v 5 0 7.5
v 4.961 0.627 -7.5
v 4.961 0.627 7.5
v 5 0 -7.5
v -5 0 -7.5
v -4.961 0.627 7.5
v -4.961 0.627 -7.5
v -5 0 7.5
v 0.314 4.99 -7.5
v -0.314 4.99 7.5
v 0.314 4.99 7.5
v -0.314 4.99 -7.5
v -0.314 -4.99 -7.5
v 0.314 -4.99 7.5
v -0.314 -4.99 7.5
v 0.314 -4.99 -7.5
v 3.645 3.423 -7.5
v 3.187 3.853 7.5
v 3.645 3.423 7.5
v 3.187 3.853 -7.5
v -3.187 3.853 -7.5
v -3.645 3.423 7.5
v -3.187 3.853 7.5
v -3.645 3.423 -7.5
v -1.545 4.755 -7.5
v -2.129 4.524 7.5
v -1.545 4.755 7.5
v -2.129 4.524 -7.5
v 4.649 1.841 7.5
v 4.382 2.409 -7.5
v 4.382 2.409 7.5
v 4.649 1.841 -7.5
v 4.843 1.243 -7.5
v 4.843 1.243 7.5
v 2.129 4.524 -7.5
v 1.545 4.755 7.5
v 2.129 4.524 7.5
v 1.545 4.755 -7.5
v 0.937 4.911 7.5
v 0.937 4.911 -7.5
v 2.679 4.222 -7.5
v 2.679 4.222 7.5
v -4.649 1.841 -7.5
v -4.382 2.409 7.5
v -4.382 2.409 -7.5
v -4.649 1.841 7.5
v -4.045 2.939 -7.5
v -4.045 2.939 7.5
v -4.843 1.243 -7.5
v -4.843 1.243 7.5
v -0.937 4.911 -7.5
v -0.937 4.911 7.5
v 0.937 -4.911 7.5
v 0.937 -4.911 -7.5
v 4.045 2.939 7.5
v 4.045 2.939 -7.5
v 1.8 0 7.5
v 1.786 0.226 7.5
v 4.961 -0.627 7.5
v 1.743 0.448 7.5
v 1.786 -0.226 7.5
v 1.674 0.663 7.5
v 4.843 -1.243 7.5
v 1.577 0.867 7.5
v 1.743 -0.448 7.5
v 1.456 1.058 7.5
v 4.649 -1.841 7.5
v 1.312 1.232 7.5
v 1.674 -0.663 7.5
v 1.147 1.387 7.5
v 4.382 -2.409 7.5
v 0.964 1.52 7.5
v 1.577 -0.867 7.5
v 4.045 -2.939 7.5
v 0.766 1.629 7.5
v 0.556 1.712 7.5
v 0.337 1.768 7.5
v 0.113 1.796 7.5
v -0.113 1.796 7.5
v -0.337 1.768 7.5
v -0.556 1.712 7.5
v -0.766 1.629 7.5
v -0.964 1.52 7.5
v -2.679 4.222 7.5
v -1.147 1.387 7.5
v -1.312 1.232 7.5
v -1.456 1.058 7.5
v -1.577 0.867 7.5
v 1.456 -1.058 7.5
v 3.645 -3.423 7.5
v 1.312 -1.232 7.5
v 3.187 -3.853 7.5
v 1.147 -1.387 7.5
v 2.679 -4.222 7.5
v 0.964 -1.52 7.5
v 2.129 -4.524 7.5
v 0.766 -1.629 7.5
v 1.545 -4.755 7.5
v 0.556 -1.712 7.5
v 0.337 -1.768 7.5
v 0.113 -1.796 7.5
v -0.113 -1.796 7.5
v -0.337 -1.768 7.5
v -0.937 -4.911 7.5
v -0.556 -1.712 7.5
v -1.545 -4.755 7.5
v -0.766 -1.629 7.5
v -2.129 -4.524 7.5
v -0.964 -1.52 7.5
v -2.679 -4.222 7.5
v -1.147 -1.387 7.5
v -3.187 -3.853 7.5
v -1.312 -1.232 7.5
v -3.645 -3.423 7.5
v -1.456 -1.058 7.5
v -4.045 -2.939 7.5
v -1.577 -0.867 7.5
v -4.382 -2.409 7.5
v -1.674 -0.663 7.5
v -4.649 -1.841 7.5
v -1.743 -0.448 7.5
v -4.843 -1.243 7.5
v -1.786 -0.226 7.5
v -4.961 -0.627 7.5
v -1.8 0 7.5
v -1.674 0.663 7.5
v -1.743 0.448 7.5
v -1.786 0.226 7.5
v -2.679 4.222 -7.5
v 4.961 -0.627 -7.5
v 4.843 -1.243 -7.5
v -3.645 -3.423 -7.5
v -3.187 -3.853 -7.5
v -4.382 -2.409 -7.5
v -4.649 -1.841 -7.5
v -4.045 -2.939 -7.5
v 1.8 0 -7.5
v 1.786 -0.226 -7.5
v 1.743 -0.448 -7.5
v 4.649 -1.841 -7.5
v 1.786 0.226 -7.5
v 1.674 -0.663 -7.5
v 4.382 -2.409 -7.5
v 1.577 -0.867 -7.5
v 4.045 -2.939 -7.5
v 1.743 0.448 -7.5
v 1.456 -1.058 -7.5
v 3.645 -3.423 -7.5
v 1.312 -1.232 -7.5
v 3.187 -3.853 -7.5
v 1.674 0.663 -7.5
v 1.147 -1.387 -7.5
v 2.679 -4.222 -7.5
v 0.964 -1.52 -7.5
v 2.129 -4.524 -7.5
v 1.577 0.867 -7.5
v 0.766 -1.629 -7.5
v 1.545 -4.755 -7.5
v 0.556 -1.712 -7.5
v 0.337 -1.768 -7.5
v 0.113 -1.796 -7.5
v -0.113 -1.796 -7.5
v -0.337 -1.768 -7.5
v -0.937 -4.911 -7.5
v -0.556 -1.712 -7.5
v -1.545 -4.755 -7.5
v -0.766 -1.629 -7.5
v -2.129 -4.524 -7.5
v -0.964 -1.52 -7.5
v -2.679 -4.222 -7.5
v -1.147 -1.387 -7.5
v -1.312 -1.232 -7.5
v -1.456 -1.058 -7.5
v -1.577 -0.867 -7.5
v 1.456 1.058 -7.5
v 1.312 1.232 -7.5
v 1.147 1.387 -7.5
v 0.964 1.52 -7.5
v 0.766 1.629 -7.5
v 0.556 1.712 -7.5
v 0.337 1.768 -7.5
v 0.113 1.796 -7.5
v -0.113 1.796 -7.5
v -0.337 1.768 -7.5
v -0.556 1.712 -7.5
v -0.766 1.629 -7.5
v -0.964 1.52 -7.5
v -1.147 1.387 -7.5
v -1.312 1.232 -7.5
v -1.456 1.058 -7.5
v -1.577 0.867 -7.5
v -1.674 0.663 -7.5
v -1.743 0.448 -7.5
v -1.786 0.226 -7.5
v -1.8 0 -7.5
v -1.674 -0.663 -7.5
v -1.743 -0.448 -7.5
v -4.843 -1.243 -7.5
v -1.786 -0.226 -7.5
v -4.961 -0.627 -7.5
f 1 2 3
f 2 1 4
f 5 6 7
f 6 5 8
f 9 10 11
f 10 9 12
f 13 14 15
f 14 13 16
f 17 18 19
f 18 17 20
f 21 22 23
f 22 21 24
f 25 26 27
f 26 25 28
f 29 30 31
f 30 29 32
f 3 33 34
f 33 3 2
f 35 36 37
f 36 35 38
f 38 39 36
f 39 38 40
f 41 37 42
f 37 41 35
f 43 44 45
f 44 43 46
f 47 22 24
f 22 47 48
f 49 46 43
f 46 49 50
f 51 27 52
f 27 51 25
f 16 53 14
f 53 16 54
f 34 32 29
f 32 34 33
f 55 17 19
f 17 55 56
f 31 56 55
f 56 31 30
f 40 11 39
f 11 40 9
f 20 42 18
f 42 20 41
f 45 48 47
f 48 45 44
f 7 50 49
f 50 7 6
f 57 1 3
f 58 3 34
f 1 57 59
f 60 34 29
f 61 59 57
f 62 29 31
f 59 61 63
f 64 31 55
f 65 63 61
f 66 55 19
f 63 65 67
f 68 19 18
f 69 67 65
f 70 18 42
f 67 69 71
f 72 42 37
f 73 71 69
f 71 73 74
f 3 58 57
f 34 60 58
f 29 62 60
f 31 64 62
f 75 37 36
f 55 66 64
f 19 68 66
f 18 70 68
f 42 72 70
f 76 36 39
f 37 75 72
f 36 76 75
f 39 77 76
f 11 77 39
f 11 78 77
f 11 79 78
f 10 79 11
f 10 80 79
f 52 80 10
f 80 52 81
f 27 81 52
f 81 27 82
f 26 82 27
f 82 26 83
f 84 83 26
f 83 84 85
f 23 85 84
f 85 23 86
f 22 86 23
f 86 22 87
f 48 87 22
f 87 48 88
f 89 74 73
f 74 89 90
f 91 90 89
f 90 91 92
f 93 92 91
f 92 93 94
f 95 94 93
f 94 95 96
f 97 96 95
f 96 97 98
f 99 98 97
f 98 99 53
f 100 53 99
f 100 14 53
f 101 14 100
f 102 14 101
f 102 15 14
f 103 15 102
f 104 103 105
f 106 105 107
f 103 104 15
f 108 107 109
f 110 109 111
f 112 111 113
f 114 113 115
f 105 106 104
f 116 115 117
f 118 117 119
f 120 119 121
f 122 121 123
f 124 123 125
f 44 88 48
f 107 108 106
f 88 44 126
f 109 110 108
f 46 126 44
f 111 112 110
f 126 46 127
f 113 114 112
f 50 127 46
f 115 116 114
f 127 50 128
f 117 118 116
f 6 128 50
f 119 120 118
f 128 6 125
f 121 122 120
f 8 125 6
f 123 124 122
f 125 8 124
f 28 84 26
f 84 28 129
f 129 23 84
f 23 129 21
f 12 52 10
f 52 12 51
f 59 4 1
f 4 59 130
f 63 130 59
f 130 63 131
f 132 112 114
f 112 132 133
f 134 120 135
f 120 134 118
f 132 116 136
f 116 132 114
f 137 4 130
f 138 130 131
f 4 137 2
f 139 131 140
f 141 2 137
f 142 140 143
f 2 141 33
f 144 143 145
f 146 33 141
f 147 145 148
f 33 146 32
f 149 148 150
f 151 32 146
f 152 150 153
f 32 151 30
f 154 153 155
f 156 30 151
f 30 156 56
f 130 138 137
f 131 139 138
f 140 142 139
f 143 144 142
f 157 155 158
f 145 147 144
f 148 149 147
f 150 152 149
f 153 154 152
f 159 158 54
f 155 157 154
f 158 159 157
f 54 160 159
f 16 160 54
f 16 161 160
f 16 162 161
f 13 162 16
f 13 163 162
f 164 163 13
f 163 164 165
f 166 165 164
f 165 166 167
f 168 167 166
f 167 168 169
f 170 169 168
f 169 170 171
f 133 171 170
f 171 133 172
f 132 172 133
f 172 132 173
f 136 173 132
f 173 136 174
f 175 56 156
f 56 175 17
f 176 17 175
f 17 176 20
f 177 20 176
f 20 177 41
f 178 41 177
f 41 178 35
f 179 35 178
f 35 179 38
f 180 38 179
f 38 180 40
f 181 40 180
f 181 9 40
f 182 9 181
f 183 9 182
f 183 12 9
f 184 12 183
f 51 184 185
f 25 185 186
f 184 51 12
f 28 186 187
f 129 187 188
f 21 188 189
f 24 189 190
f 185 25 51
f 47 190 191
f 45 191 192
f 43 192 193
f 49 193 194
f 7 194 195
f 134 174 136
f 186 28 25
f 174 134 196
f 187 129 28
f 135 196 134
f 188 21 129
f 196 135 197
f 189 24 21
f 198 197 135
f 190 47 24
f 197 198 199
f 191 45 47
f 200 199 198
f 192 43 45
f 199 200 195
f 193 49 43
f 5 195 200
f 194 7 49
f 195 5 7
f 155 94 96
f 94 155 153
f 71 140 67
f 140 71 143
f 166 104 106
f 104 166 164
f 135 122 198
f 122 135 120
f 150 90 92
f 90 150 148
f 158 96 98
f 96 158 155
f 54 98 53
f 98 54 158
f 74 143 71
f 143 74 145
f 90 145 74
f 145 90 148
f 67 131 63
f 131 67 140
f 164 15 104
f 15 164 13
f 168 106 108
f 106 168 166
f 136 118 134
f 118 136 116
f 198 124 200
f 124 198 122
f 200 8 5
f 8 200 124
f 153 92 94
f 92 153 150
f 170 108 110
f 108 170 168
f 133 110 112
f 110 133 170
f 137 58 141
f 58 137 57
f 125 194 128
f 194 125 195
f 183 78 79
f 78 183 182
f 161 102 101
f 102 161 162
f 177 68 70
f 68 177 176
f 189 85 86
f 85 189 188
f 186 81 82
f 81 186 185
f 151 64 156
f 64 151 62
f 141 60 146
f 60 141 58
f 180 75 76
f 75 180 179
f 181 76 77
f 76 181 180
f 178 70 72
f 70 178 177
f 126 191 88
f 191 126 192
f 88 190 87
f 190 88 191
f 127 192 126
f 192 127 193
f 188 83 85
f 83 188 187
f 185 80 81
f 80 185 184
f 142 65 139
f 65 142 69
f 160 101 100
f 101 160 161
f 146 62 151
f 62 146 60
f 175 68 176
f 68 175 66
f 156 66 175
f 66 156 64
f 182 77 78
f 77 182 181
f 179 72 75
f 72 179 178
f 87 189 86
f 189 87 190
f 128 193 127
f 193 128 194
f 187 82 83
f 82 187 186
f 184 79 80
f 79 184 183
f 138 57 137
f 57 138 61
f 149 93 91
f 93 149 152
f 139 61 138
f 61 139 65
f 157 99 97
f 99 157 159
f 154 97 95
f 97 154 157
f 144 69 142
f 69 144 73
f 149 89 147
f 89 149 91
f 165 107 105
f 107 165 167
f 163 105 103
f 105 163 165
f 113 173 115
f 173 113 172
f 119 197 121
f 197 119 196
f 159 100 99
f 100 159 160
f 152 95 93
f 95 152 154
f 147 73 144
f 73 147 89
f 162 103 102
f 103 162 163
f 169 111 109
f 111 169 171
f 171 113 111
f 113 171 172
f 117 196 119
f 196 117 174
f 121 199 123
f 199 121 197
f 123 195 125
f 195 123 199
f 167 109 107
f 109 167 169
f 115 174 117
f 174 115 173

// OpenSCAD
$fn = 50;


difference() {
	union() {
		translate(v = [0, 0, -7.5000000000]) {
			cylinder(h = 15, r = 5.0000000000);
		}
	}
	union() {
		translate(v = [0, 0, -100.0000000000]) {
			cylinder(h = 200, r = 1.8000000000);
		}
	}
}
